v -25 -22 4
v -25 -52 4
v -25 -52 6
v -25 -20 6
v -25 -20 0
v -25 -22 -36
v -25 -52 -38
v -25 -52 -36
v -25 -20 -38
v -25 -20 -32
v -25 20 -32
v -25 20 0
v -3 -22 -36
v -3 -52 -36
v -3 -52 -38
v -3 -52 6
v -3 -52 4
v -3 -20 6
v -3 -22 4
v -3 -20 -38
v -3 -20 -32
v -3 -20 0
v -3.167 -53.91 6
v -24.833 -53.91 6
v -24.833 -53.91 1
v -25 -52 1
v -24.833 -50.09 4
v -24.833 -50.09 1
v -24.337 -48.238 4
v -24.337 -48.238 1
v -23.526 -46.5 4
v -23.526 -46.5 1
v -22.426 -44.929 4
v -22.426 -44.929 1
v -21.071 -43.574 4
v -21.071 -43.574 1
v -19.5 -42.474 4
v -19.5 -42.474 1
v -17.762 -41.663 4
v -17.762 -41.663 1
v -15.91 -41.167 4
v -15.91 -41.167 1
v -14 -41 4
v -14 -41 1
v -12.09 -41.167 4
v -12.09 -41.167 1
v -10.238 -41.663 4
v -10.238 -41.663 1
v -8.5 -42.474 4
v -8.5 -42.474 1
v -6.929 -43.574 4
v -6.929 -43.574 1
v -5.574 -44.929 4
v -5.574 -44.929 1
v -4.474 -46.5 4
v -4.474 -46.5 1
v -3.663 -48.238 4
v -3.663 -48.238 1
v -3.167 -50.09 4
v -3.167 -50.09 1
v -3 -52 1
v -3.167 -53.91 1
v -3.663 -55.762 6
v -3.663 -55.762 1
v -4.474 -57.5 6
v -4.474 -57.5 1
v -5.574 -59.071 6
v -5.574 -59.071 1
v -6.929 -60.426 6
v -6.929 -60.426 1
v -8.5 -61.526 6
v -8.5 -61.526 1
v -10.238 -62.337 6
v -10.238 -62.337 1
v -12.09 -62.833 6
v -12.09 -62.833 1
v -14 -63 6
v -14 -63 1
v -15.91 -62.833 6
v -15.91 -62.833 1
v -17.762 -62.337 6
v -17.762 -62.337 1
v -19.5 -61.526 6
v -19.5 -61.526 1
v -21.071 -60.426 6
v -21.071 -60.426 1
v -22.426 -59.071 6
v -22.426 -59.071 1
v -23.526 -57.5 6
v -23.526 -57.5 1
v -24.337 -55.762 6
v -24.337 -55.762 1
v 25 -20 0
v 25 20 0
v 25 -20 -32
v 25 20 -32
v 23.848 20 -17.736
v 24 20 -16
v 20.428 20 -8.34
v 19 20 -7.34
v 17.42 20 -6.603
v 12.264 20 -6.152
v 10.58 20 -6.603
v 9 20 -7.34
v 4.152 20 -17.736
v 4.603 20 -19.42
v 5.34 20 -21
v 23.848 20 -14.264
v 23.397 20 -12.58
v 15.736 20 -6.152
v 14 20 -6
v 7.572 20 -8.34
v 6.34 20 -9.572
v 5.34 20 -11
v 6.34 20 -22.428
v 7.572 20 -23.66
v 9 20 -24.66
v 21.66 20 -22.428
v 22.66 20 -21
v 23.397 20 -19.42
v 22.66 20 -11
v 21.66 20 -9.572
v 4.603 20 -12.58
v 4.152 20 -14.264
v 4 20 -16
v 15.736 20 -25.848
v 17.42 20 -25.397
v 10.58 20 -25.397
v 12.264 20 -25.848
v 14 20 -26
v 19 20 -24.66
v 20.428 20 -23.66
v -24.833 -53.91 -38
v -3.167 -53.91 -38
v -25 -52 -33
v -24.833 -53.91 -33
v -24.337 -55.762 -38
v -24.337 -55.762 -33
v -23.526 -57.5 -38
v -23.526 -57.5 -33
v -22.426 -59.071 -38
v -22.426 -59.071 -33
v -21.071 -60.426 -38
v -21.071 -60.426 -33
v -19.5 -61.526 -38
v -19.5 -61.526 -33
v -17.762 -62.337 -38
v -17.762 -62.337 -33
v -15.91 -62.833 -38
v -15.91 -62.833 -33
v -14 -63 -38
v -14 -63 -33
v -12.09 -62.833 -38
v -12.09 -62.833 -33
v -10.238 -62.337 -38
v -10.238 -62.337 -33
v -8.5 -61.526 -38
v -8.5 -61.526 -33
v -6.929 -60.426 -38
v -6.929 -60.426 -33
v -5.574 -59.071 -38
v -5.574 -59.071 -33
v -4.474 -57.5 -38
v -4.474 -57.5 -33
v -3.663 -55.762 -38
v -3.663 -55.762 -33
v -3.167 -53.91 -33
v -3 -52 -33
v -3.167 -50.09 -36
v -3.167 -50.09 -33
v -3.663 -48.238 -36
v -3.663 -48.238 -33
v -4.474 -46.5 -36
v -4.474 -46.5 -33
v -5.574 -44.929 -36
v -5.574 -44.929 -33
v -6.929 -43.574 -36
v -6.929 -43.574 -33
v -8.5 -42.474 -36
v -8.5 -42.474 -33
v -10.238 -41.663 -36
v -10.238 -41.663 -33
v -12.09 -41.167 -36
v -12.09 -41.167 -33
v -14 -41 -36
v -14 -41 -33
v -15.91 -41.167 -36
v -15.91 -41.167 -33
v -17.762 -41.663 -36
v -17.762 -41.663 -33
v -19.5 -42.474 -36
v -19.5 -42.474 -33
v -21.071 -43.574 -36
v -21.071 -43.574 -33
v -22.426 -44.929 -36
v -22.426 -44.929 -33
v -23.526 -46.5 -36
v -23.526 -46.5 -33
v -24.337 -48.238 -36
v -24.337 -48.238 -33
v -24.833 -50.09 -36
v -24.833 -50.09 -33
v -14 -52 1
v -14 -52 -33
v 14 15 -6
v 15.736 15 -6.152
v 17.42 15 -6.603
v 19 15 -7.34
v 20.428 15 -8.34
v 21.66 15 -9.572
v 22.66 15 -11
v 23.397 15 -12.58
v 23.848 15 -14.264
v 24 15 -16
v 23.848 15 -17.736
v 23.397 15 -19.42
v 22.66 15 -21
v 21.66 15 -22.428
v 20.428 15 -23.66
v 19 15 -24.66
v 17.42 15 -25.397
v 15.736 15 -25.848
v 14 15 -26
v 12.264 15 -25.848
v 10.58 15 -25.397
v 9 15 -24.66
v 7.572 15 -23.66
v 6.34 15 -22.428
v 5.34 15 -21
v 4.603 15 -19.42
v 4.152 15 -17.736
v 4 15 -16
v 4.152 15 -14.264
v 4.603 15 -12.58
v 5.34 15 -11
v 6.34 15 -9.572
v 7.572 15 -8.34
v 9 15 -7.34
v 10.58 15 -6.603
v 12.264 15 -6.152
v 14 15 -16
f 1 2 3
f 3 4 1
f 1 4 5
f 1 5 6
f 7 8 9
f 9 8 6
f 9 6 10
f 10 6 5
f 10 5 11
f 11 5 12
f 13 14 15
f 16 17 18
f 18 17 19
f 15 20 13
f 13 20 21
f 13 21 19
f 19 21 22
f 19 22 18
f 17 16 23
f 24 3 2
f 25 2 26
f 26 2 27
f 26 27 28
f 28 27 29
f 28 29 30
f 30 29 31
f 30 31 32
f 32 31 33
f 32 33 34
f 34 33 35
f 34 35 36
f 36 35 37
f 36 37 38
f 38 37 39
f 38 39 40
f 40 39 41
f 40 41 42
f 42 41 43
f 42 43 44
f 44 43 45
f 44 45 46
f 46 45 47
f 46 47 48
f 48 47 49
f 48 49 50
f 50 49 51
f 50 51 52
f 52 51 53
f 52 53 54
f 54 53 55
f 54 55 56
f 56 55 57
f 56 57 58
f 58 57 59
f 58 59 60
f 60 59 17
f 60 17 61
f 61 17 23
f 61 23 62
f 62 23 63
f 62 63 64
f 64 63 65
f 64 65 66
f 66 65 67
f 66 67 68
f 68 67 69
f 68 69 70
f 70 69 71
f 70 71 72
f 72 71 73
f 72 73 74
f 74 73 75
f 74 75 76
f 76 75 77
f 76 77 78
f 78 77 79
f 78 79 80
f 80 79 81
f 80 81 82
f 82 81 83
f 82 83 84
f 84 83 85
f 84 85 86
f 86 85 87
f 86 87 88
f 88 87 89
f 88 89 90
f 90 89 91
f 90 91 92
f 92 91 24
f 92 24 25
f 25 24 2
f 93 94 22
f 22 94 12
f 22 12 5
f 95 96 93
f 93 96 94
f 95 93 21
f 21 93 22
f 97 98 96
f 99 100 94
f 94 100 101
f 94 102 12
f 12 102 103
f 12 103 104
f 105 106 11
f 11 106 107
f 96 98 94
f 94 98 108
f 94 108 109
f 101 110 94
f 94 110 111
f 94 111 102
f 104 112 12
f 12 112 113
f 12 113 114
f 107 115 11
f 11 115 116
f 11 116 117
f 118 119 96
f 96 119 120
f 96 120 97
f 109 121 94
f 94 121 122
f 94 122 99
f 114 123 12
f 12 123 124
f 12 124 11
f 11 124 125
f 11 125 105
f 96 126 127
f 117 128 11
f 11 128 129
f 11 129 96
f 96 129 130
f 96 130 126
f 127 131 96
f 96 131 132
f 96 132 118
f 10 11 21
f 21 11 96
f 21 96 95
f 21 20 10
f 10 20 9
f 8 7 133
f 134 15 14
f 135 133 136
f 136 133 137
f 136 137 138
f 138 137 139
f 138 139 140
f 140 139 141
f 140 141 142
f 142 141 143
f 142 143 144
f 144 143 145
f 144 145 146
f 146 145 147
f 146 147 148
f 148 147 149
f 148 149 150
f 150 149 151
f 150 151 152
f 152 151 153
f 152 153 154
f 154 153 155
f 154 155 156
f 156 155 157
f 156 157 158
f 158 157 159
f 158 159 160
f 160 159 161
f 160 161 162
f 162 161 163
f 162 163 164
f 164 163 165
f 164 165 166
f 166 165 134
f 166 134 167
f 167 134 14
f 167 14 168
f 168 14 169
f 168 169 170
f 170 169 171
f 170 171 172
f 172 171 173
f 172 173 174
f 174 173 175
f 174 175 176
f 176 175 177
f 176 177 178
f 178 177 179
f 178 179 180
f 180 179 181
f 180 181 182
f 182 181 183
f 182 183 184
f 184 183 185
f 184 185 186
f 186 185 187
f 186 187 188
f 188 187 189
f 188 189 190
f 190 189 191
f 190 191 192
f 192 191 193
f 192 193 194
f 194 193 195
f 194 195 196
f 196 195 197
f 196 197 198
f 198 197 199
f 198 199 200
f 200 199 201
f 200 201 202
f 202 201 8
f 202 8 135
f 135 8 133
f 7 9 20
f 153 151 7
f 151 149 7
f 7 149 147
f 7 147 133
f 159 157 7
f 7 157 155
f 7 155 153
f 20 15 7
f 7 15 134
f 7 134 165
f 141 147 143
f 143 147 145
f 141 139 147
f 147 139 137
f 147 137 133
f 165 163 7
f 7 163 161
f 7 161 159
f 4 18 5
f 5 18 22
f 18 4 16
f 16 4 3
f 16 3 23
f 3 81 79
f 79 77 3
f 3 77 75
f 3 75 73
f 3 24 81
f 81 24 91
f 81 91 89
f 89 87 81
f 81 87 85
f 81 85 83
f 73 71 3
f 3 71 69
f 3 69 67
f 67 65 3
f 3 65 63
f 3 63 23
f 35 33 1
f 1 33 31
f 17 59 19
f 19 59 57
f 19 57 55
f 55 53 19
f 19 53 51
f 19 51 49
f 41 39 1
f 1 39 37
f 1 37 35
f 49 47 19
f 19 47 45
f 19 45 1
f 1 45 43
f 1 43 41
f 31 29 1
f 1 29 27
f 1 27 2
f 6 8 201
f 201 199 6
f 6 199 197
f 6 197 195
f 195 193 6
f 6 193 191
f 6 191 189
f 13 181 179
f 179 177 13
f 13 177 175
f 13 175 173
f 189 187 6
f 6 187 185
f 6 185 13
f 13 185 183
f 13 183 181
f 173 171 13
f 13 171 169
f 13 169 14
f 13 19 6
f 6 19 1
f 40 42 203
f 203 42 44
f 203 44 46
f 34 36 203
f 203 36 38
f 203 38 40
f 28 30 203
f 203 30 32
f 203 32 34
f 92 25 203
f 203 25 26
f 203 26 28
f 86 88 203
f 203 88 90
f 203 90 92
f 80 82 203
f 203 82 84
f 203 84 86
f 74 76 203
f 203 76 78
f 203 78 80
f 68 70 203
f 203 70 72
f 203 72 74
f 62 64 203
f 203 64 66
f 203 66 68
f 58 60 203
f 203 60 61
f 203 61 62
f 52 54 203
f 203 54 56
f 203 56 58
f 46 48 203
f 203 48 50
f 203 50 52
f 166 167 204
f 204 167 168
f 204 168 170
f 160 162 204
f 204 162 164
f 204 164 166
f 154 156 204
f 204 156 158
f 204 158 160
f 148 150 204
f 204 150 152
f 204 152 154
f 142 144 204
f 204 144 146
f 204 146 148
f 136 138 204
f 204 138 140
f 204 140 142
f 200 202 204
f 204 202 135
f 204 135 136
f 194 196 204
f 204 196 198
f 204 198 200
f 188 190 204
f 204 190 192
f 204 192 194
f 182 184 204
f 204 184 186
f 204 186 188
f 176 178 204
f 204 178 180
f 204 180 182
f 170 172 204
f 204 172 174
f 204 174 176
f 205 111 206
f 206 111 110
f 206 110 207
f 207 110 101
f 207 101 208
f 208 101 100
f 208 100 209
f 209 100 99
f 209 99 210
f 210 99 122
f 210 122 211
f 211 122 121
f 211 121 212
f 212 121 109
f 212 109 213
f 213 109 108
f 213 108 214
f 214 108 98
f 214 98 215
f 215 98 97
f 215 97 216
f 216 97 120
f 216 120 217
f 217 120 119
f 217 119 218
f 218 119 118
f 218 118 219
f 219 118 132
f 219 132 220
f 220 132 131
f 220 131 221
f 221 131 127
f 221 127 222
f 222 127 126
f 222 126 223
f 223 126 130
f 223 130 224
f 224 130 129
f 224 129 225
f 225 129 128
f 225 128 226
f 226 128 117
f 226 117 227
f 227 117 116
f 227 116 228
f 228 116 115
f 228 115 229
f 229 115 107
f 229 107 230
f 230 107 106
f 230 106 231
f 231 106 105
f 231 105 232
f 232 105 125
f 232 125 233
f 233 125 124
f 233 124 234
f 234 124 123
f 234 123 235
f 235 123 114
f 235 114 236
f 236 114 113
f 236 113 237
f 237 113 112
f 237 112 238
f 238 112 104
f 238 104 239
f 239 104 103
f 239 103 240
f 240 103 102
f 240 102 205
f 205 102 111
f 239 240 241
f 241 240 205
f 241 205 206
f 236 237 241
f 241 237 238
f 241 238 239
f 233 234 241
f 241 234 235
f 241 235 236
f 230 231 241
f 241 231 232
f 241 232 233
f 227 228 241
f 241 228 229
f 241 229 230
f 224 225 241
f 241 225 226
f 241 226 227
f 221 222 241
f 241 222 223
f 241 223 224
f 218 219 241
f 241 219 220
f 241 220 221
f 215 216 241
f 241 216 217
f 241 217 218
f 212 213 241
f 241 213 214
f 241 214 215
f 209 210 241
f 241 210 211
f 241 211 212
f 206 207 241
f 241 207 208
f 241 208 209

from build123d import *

# Parameters (mm, degrees)
BOSS_EXTRUDE1_DEPTH = 32
BOSS_EXTRUDE2_DEPTH = 38
BOSS_EXTRUDE3_START = 6
BOSS_EXTRUDE3_DEPTH = 6
SKETCH2_W           = 40
SKETCH2_H           = 41
CUT_EXTRUDE1_DEPTH  = 22
SKETCH3_R           = 11
BOSS_EXTRUDE5_DEPTH = 3
BOSS_EXTRUDE6_START = 3
SKETCH4_R           = 11
BOSS_EXTRUDE6_DEPTH = 3
SKETCH13_R          = 10
CUT_EXTRUDE2_DEPTH  = 5


with BuildPart() as part:
    # Sketch1 → Boss-Extrude1 (new body)
    with BuildSketch(Plane.XY):
        Polygon((25, 20), (-25, 20), (-25, -20), (-3, -20), (25, -20), align=None)
    extrude(amount=-BOSS_EXTRUDE1_DEPTH)

    # Sketch1<3> → Boss-Extrude2 (add)
    with BuildSketch(Plane.XY):
        with BuildLine():
            Line((-3, -20), (-25, -20))
            Line((-25, -20), (-25, -52))
            ThreePointArc((-25, -52), (-14, -63), (-3, -52))
            Line((-3, -52), (-3, -20))
        make_face()
    extrude(amount=-BOSS_EXTRUDE2_DEPTH)

    # Sketch1<4> → Boss-Extrude3 (add)
    with BuildSketch(Plane.XY.offset(BOSS_EXTRUDE3_START)):
        with BuildLine():
            Line((-3, -20), (-25, -20))
            Line((-25, -20), (-25, -52))
            ThreePointArc((-25, -52), (-14, -63), (-3, -52))
            Line((-3, -52), (-3, -20))
        make_face()
    extrude(amount=-BOSS_EXTRUDE3_DEPTH)

    # Sketch2 → Cut-Extrude1 (cut)
    with BuildSketch(Plane.ZY.offset(25)):
        with Locations((-16, -42.5)):
            Rectangle(SKETCH2_W, SKETCH2_H)
    extrude(amount=-CUT_EXTRUDE1_DEPTH, mode=Mode.SUBTRACT)

    # Sketch3 → Boss-Extrude5 (add)
    with BuildSketch(Plane(origin=(0, 0, 4), x_dir=(-1, 0, 0), z_dir=(0, 0, -1))):
        with Locations((14, -52)):
            Circle(SKETCH3_R)
    extrude(amount=BOSS_EXTRUDE5_DEPTH)

    # Sketch4 → Boss-Extrude6 (add)
    with BuildSketch(Plane.XY.offset(-36).offset(BOSS_EXTRUDE6_START)):
        with Locations((-14, -52)):
            Circle(SKETCH4_R)
    extrude(amount=-BOSS_EXTRUDE6_DEPTH)

    # Sketch13 → Cut-Extrude2 (cut)
    with BuildSketch(Plane(origin=(0, 20, 0), x_dir=(1, 0, 0), z_dir=(0, 1, 0))):
        with Locations((14, 16)):
            Circle(SKETCH13_R)
    extrude(amount=-CUT_EXTRUDE2_DEPTH, mode=Mode.SUBTRACT)


solid = part.part
